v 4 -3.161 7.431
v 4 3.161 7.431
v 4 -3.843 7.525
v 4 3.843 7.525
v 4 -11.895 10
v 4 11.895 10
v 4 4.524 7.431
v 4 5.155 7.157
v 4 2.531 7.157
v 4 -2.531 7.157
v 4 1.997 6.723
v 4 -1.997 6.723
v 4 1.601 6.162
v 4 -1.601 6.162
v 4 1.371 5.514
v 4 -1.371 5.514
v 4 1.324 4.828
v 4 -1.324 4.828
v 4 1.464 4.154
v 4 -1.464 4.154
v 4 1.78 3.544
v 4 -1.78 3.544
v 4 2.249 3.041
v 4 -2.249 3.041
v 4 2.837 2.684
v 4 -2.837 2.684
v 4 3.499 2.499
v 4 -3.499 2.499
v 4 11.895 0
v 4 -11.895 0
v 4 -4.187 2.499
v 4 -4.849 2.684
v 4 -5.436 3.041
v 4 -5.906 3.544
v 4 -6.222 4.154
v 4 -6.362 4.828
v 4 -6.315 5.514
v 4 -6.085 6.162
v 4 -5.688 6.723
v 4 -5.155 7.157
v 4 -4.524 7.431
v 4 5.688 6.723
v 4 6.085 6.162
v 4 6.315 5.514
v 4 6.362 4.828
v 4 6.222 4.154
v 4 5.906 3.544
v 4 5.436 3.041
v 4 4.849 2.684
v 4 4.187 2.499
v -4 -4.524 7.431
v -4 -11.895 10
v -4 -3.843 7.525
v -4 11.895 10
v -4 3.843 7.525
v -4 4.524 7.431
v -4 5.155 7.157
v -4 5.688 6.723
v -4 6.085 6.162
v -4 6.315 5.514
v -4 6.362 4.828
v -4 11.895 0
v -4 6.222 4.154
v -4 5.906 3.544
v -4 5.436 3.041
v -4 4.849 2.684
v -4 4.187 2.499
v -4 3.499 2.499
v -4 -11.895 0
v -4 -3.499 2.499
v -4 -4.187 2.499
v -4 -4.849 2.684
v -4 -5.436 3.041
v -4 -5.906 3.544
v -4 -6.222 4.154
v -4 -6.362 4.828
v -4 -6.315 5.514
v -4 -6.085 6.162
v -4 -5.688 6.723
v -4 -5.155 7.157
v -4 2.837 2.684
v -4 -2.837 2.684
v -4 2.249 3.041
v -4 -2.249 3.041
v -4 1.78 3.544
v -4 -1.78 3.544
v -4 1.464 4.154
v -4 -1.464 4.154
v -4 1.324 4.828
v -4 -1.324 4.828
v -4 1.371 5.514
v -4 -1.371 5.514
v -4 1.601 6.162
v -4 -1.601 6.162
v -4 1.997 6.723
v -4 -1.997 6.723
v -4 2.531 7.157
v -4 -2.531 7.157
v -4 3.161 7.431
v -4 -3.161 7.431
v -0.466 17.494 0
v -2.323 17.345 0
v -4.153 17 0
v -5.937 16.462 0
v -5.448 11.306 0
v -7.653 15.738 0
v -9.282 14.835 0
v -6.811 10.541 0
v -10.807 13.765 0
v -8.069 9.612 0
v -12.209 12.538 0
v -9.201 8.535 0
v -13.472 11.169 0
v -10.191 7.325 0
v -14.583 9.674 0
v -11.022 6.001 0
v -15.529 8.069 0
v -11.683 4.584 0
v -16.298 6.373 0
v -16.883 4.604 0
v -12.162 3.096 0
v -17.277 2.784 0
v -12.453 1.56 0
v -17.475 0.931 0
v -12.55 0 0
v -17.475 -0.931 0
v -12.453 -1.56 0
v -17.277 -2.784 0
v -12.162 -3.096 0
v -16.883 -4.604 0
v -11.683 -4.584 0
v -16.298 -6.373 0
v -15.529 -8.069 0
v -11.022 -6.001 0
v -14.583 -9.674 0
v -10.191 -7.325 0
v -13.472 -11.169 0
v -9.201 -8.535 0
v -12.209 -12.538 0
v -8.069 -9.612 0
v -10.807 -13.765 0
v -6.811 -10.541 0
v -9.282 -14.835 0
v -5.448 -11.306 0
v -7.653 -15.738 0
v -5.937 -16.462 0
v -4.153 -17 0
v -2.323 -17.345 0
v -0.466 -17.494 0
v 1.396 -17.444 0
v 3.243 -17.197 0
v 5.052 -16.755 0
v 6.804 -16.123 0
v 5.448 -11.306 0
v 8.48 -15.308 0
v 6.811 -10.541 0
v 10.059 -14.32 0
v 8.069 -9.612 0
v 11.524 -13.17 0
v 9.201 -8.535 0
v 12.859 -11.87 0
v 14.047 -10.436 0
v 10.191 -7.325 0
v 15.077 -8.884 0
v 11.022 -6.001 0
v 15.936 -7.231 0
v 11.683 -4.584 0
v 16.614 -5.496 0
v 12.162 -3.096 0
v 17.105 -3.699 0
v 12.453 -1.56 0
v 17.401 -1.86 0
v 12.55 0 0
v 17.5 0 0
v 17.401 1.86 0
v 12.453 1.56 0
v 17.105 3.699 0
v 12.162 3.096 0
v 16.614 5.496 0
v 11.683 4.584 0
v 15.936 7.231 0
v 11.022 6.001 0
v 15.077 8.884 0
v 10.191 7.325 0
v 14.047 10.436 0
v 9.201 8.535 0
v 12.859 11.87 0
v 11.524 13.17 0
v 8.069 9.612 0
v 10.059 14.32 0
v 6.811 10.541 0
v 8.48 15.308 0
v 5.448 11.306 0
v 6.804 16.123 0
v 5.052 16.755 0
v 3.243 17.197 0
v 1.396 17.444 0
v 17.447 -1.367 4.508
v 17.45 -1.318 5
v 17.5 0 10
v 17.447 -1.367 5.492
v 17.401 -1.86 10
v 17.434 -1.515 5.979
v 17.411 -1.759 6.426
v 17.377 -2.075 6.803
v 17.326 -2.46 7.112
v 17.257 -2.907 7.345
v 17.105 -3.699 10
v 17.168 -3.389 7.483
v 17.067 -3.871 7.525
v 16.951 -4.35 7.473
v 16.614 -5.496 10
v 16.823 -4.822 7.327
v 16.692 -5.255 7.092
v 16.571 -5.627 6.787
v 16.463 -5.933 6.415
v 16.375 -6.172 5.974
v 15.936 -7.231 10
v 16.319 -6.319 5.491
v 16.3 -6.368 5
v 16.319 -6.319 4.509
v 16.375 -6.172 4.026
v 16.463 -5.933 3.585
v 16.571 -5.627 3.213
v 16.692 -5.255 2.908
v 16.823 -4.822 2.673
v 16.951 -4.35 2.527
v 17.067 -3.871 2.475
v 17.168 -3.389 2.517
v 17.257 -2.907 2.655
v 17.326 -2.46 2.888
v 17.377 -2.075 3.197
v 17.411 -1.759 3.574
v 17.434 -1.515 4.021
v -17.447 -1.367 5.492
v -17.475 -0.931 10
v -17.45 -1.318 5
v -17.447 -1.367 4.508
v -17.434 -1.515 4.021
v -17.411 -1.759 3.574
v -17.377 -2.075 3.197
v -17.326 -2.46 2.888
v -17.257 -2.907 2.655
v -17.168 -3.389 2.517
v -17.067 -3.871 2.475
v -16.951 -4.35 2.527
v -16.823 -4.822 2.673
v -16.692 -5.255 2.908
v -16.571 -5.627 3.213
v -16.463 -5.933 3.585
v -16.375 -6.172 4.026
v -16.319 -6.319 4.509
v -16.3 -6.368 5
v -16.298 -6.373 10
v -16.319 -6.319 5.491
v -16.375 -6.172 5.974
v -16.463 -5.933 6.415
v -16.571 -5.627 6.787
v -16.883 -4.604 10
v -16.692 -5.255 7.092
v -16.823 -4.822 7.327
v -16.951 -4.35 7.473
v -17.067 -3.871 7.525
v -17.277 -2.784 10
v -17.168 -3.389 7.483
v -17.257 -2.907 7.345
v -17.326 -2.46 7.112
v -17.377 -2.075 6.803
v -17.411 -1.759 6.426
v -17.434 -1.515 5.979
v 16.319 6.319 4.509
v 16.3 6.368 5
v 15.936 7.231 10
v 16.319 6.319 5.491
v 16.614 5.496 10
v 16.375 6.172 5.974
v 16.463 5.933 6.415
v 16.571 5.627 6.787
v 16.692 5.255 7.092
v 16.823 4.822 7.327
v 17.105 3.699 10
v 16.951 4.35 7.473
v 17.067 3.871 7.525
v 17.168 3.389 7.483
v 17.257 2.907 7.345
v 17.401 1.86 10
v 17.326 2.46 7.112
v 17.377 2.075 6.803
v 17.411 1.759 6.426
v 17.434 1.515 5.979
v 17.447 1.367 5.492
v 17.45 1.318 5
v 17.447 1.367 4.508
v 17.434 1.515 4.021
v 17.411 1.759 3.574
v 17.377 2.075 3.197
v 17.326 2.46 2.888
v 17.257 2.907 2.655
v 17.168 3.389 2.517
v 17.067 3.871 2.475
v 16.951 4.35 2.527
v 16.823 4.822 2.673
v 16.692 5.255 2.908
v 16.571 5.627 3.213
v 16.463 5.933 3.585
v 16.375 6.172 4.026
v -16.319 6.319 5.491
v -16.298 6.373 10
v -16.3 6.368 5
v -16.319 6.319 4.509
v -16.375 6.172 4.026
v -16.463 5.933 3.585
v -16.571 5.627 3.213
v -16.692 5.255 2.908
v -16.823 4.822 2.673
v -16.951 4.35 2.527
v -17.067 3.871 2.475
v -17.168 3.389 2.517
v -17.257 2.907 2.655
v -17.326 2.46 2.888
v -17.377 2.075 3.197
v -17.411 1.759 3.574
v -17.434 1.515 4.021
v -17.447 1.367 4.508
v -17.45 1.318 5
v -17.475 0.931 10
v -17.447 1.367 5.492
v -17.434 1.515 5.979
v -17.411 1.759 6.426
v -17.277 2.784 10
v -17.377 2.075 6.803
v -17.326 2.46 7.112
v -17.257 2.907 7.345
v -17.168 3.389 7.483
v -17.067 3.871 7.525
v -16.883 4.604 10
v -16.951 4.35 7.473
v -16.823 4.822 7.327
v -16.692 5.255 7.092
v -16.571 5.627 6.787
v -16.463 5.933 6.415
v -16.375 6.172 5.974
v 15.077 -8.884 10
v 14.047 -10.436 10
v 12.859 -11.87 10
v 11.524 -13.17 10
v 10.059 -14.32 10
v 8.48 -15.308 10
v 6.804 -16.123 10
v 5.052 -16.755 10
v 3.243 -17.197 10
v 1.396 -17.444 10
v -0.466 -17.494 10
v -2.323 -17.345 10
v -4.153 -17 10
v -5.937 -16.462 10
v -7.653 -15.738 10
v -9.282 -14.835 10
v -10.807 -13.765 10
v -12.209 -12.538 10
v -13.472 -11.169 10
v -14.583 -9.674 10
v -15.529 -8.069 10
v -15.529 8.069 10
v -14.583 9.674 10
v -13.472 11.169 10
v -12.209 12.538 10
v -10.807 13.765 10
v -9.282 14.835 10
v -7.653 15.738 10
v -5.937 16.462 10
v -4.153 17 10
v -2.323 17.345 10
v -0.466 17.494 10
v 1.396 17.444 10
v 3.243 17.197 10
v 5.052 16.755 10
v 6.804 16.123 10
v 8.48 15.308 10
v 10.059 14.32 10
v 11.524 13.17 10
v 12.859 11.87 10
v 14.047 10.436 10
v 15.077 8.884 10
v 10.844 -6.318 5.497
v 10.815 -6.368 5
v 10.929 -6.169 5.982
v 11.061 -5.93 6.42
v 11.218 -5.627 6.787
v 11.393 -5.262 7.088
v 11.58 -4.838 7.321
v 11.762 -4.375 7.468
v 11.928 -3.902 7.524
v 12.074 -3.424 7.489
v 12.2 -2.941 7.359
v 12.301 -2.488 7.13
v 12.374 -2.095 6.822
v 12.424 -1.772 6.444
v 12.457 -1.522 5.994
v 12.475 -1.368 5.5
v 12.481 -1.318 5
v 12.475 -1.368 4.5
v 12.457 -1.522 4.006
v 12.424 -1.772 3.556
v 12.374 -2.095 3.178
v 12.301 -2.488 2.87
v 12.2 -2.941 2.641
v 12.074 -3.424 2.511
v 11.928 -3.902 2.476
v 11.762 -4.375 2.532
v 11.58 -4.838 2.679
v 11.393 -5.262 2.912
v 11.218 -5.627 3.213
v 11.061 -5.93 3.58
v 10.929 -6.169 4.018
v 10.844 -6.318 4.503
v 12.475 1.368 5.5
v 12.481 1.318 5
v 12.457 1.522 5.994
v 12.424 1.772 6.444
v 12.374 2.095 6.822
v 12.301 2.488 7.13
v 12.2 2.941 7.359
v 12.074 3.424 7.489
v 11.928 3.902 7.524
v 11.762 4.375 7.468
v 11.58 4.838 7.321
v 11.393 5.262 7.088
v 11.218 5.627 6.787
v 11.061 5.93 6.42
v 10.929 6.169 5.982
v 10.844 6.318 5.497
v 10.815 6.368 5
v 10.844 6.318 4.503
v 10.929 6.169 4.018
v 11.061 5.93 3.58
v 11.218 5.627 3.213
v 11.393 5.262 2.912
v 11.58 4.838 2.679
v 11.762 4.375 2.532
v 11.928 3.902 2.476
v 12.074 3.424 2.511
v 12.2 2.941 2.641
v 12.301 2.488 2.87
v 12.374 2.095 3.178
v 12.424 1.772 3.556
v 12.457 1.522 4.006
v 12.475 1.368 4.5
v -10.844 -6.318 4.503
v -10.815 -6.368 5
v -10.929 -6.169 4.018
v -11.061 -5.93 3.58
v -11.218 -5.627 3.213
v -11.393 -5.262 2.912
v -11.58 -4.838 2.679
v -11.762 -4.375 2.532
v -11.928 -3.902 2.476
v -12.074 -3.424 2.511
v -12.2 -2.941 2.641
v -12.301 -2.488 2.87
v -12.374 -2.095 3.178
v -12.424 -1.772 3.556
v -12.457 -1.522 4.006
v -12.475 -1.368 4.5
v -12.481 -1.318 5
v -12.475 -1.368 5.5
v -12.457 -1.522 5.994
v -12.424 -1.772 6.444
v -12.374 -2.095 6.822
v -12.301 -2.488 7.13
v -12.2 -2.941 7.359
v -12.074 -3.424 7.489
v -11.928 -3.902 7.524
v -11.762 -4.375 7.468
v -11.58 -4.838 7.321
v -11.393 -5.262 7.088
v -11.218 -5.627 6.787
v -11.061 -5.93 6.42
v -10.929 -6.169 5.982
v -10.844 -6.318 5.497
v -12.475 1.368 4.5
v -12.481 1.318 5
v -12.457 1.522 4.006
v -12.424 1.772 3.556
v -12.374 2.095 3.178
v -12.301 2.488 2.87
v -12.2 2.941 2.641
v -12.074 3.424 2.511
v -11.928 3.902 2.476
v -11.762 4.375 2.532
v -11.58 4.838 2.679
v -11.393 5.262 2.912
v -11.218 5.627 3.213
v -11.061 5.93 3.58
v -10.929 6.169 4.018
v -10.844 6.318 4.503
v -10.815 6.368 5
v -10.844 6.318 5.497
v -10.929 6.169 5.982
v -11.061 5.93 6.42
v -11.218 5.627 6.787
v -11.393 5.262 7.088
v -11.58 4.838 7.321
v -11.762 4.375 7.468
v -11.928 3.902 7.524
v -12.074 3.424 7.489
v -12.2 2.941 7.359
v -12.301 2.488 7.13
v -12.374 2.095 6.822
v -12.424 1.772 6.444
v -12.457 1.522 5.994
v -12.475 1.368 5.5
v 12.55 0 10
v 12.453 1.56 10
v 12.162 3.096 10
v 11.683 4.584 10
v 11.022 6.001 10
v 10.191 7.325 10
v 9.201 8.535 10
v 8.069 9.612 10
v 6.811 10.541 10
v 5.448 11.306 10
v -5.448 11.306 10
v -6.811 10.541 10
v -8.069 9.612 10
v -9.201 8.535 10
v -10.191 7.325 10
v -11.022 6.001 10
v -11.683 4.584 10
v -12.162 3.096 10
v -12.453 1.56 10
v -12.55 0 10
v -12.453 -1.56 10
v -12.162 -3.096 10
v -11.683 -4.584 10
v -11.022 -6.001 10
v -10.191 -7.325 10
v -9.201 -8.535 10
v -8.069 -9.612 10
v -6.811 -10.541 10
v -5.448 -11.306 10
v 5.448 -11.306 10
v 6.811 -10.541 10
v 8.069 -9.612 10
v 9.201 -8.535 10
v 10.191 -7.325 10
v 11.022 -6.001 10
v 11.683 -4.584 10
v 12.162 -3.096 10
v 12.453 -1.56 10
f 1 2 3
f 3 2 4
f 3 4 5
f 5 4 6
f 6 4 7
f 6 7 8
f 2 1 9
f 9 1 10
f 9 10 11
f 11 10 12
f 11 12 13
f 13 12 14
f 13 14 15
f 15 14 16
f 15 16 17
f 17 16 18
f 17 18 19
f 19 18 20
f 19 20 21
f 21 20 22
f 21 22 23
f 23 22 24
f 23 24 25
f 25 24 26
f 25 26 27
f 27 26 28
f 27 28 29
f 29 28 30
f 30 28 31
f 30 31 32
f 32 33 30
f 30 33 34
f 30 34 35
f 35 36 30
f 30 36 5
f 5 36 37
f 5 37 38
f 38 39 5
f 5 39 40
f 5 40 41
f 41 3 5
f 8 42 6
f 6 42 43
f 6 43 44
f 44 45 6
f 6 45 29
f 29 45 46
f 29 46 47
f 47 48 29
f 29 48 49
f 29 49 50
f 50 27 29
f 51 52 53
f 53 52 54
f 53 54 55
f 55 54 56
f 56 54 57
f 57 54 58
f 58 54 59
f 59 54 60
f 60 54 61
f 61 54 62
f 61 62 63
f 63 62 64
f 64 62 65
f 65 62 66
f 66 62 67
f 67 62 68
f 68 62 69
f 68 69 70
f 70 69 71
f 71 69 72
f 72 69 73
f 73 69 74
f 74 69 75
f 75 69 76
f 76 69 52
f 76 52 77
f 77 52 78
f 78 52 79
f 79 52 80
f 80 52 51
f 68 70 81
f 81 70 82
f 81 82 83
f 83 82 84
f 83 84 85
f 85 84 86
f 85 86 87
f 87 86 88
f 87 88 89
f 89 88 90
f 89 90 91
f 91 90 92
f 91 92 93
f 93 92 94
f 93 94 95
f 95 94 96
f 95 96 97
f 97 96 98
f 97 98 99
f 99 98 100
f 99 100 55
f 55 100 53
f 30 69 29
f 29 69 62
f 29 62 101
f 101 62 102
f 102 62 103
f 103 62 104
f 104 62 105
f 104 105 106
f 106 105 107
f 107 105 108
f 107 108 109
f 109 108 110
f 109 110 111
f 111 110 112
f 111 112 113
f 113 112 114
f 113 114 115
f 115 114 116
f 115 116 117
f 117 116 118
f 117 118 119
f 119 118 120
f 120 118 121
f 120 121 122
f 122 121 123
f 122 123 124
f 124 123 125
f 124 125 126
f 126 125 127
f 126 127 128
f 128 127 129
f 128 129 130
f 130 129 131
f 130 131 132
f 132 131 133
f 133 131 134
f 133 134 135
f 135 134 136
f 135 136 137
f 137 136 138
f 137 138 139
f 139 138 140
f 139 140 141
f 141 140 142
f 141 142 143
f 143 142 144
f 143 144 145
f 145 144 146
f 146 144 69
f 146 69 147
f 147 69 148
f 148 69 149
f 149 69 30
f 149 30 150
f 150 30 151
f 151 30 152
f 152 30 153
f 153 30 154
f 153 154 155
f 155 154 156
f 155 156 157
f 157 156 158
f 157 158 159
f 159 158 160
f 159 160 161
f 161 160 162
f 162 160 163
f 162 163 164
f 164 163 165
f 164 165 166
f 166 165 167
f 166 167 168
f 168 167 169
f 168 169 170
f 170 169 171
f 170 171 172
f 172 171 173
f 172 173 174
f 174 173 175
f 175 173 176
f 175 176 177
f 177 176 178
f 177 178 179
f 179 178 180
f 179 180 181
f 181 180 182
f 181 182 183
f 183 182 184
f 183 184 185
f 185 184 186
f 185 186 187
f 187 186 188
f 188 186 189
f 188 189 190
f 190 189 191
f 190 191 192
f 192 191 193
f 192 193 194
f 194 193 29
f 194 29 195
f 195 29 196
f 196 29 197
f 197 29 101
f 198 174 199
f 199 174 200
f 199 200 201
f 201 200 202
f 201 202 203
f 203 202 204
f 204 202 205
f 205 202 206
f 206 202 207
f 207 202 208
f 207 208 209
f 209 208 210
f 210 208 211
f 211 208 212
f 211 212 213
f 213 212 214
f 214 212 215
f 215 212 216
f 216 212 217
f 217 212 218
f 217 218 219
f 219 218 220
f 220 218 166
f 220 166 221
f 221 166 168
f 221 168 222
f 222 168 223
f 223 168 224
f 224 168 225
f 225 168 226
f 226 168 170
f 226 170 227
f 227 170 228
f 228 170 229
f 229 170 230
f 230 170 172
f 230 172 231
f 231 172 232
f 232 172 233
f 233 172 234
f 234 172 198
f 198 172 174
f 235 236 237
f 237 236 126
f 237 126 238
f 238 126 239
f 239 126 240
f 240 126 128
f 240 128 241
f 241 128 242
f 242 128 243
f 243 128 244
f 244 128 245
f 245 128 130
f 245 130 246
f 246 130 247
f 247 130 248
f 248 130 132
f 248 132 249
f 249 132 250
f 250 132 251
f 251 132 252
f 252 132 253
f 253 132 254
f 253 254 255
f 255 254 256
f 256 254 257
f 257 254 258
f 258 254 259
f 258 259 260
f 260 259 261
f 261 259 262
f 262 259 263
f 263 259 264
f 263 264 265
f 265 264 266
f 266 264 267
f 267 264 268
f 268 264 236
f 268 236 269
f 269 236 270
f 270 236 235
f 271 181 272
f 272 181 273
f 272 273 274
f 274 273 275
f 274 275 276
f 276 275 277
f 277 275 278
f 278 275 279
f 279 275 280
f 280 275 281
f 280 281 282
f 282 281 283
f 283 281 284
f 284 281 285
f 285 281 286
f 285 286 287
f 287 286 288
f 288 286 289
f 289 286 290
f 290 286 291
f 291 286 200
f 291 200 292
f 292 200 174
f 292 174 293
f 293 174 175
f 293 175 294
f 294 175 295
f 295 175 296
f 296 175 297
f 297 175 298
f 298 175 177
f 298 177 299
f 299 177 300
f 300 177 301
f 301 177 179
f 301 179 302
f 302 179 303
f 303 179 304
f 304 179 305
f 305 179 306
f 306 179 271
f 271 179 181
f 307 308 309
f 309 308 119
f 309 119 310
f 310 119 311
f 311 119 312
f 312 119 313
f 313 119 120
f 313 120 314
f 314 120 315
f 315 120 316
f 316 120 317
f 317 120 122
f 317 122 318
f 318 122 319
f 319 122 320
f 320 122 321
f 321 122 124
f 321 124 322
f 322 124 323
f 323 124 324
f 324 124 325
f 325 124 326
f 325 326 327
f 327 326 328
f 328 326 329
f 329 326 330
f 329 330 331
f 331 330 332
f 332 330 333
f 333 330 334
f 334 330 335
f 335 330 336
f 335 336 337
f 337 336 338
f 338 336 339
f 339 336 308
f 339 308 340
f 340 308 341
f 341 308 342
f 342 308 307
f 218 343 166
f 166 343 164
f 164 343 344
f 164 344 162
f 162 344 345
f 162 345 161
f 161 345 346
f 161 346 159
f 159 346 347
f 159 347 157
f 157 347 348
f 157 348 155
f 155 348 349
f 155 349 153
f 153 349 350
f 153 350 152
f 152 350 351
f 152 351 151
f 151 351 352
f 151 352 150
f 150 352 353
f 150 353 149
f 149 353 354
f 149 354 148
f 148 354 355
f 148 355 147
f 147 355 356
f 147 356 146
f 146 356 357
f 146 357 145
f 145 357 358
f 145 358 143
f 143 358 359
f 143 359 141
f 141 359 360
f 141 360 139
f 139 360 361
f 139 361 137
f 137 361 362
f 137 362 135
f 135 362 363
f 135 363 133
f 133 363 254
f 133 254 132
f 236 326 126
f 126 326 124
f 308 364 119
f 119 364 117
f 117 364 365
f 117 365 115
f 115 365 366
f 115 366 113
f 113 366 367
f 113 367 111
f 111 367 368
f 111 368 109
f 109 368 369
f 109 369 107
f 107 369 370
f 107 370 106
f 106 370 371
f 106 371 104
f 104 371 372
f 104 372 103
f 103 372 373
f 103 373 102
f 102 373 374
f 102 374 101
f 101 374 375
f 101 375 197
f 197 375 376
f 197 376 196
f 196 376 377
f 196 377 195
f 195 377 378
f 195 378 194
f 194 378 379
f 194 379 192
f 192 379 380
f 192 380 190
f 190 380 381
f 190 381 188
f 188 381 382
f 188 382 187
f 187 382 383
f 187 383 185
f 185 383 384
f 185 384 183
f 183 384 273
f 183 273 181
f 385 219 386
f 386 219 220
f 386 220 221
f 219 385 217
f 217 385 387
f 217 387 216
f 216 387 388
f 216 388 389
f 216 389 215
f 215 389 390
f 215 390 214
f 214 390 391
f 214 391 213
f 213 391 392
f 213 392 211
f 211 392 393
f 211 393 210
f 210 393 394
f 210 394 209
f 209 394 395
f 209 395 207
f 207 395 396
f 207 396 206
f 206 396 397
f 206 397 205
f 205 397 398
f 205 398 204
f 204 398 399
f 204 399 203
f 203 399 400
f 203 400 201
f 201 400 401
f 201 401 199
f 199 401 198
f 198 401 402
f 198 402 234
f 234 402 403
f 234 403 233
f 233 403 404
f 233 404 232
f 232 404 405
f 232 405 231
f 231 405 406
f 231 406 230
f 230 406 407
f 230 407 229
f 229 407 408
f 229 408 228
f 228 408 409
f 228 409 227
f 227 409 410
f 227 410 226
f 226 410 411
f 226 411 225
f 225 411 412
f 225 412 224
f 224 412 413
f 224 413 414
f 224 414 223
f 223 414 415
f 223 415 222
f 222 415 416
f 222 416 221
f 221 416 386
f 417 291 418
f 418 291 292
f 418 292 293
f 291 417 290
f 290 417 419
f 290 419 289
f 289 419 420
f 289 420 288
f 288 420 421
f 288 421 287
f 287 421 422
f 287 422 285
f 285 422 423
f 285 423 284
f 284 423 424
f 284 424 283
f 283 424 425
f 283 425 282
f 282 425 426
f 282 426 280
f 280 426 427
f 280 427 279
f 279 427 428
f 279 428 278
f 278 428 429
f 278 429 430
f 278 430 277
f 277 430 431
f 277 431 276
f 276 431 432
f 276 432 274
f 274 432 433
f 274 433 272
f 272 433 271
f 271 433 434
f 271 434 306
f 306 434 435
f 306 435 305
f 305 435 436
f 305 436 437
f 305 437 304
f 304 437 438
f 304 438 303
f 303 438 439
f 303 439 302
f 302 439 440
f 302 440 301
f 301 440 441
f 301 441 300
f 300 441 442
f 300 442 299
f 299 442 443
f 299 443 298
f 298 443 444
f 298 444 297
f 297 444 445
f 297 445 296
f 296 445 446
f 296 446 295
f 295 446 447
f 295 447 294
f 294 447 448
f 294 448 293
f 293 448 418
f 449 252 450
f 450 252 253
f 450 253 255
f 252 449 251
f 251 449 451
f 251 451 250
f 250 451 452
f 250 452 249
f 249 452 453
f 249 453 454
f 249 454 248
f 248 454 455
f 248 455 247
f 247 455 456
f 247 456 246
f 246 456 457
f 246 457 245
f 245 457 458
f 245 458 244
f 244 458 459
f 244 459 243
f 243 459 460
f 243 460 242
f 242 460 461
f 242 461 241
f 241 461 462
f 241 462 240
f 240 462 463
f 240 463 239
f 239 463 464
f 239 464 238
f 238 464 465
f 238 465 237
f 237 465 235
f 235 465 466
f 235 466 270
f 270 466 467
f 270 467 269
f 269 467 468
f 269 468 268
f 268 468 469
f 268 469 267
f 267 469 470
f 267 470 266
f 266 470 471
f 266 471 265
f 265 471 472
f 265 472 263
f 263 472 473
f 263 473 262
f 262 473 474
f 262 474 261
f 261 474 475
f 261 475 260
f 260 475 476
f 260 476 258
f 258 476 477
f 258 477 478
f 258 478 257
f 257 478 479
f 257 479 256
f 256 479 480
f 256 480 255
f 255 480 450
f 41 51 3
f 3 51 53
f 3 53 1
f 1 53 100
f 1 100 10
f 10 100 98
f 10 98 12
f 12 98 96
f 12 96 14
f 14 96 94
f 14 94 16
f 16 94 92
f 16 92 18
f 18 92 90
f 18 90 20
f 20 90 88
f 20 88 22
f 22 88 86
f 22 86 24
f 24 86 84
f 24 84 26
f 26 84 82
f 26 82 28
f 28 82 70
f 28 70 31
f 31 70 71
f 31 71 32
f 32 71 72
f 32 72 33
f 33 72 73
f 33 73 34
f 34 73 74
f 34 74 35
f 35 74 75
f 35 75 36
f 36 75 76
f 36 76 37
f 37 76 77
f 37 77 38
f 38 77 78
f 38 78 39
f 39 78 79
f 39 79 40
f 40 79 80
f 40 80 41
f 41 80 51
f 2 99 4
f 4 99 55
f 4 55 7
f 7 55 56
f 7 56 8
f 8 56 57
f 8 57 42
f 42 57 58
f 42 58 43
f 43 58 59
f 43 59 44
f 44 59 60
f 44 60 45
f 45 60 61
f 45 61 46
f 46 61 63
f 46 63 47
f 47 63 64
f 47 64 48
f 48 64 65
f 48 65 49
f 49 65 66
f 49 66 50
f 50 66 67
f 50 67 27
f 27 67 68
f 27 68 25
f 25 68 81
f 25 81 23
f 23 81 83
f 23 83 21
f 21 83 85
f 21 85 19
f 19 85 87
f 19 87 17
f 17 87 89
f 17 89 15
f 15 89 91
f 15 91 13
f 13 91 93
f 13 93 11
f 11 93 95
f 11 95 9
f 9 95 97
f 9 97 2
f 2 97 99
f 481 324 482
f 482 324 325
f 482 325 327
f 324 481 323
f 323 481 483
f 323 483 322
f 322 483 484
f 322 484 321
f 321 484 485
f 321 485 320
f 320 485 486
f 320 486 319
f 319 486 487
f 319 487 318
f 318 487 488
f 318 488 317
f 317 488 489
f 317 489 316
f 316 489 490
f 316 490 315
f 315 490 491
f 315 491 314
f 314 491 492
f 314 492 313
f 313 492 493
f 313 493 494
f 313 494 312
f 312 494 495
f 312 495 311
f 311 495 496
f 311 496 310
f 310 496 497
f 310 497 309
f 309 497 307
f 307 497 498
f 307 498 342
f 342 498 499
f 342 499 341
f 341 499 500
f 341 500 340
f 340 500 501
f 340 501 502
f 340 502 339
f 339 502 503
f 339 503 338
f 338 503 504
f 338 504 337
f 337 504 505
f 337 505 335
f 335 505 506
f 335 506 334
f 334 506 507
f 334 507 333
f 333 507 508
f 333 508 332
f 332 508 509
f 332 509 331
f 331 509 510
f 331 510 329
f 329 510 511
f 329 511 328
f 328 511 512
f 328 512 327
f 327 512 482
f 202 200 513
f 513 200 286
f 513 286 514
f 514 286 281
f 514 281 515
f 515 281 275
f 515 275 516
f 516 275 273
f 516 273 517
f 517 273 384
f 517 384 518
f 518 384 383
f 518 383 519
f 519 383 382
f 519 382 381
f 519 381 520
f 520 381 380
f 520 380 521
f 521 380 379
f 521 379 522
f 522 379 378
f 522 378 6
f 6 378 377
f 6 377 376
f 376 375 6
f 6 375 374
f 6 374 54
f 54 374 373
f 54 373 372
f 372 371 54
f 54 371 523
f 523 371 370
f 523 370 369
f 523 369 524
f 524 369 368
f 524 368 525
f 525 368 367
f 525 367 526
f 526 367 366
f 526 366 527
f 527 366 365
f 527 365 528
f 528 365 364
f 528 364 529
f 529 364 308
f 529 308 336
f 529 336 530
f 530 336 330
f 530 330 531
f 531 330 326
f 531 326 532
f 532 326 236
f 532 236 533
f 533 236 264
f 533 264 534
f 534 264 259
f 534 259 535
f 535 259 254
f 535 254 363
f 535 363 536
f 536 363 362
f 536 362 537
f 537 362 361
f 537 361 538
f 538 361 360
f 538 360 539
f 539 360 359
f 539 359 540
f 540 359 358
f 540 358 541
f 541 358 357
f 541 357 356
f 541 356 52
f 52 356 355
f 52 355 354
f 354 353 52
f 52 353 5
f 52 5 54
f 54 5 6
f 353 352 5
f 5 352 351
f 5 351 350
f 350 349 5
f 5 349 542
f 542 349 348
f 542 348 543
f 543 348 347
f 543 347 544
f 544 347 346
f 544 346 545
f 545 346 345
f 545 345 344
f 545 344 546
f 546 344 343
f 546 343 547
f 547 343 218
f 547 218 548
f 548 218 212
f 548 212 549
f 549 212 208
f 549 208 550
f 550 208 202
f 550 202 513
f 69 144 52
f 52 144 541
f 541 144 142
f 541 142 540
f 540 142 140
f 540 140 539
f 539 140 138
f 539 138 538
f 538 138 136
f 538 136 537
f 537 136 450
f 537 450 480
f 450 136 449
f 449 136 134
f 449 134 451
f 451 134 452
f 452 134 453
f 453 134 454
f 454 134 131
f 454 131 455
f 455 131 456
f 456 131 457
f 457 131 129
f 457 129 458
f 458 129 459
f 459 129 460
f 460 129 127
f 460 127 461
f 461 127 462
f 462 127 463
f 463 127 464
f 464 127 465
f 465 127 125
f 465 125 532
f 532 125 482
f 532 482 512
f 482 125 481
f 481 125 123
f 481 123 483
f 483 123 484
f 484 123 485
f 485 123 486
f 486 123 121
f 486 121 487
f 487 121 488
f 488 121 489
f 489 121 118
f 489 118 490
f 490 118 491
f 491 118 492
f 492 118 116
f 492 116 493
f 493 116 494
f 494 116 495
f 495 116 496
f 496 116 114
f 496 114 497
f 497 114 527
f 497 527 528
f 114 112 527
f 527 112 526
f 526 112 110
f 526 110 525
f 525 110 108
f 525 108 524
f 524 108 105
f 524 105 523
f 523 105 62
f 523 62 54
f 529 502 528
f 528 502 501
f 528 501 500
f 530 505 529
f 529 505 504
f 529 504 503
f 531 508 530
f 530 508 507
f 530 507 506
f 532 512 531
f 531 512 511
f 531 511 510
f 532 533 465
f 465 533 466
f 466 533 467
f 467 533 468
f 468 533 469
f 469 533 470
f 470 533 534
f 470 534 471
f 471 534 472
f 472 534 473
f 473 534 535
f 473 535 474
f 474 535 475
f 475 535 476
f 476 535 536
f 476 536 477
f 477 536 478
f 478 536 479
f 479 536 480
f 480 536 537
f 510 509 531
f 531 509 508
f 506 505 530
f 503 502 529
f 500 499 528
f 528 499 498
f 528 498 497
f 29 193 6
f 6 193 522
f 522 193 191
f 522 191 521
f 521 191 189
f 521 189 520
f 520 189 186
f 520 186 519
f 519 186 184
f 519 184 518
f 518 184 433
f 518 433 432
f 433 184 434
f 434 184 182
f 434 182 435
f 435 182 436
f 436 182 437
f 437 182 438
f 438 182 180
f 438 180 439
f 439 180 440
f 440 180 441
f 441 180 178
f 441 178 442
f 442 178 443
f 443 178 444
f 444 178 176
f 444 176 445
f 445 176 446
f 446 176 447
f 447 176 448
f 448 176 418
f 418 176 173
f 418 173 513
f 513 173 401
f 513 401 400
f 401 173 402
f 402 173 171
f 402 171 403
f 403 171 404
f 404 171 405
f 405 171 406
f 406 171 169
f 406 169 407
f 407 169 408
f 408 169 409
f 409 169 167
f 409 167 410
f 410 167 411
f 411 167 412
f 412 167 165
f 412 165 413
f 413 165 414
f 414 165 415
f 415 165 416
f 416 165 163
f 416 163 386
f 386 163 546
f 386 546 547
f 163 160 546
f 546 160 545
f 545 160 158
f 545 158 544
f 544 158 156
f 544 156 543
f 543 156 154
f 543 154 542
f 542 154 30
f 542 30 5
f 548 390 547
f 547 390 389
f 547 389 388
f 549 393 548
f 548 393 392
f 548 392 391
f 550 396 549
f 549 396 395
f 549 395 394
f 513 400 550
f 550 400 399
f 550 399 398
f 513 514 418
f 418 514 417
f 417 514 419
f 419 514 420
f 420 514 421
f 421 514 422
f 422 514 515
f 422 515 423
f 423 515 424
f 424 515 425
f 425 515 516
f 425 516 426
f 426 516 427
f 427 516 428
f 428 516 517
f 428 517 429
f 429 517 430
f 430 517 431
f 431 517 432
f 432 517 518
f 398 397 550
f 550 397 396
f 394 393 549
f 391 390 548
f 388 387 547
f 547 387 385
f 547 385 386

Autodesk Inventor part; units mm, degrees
ref_plane "YZ Plane" through (0, 0, 0) normal (1, 0, 0) x (0, 1, 0)
ref_plane "XZ Plane" through (0, 0, 0) normal (0, 1, 0) x (-1, 0, 0)
ref_plane "XY Plane" through (0, 0, 0) normal (0, 0, 1) x (1, 0, 0)
sketch "Skizze1" plane through (0, 0, 0) normal (0, 0, 1) x (1, 0, 0)
  circle A0 centre (0, 0) radius 17.5
  circle A1 centre (0, 0) radius 12.5 construction
  line L0 (-4, 11.8427) -> (4, 11.8427) construction
  line L1 (4, 11.8427) -> (4, -11.8427)
  line L2 (4, -11.8427) -> (-4, -11.8427) construction
  line L3 (-4, -11.8427) -> (-4, 11.8427)
  arc A2 (-4, 11.8427) -> (-4, -11.8427) centre (0, 0) ccw
  arc A3 (4, -11.8427) -> (4, 11.8427) centre (0, 0) ccw
  dimension "d0" = 35
  dimension "d1" = 25
  dimension "d2" = 8
  dimension "d3" = 4
  dimension "d4" = 25
  dimension "d5" = 0
extrude "Extrusion1" add sketch "Skizze1" along normal blind 10
sketch "Skizze2" plane through (4, -11.8427, 0) normal (1, 0, 0) x (0, 0, -1)
  circle A0 centre (-5, 15.6854) radius 2.525
  circle A1 centre (-5, 8) radius 2.525
  line L0 (0, 0) -> (-10, 0) projected
  line L1 (0, 23.6854) -> (-10, 23.6854) projected
  line L2 (-10, 0) -> (-10, 23.6854) projected
  point P0 (0, 11.8427)
  dimension "d8" = 5.05
  dimension "d9" = 5.05
  dimension "d10" = 8
  dimension "d11" = 8
  dimension "d12" = 5
  dimension "d13" = 5
extrude "Extrusion2" cut sketch "Skizze2" along normal mid plane 500
sketch "Skizze3" plane through (0, 0, 10) normal (0, 0, 1) x (1, 0, 0)
  circle A0 centre (0, 0) radius 12.55
  line L0 (4, 11.8955) -> (4, -11.8955)
  line L1 (-4, -11.8955) -> (-4, 11.8955)
  dimension "d16" = 25.1
  dimension "d17" = 4
  dimension "d18" = 8
extrude "Extrusion3" cut sketch "Skizze3" against normal through all contours A0 L0 | L1 A0
properties part number "FahnenhalterTeiloben"
